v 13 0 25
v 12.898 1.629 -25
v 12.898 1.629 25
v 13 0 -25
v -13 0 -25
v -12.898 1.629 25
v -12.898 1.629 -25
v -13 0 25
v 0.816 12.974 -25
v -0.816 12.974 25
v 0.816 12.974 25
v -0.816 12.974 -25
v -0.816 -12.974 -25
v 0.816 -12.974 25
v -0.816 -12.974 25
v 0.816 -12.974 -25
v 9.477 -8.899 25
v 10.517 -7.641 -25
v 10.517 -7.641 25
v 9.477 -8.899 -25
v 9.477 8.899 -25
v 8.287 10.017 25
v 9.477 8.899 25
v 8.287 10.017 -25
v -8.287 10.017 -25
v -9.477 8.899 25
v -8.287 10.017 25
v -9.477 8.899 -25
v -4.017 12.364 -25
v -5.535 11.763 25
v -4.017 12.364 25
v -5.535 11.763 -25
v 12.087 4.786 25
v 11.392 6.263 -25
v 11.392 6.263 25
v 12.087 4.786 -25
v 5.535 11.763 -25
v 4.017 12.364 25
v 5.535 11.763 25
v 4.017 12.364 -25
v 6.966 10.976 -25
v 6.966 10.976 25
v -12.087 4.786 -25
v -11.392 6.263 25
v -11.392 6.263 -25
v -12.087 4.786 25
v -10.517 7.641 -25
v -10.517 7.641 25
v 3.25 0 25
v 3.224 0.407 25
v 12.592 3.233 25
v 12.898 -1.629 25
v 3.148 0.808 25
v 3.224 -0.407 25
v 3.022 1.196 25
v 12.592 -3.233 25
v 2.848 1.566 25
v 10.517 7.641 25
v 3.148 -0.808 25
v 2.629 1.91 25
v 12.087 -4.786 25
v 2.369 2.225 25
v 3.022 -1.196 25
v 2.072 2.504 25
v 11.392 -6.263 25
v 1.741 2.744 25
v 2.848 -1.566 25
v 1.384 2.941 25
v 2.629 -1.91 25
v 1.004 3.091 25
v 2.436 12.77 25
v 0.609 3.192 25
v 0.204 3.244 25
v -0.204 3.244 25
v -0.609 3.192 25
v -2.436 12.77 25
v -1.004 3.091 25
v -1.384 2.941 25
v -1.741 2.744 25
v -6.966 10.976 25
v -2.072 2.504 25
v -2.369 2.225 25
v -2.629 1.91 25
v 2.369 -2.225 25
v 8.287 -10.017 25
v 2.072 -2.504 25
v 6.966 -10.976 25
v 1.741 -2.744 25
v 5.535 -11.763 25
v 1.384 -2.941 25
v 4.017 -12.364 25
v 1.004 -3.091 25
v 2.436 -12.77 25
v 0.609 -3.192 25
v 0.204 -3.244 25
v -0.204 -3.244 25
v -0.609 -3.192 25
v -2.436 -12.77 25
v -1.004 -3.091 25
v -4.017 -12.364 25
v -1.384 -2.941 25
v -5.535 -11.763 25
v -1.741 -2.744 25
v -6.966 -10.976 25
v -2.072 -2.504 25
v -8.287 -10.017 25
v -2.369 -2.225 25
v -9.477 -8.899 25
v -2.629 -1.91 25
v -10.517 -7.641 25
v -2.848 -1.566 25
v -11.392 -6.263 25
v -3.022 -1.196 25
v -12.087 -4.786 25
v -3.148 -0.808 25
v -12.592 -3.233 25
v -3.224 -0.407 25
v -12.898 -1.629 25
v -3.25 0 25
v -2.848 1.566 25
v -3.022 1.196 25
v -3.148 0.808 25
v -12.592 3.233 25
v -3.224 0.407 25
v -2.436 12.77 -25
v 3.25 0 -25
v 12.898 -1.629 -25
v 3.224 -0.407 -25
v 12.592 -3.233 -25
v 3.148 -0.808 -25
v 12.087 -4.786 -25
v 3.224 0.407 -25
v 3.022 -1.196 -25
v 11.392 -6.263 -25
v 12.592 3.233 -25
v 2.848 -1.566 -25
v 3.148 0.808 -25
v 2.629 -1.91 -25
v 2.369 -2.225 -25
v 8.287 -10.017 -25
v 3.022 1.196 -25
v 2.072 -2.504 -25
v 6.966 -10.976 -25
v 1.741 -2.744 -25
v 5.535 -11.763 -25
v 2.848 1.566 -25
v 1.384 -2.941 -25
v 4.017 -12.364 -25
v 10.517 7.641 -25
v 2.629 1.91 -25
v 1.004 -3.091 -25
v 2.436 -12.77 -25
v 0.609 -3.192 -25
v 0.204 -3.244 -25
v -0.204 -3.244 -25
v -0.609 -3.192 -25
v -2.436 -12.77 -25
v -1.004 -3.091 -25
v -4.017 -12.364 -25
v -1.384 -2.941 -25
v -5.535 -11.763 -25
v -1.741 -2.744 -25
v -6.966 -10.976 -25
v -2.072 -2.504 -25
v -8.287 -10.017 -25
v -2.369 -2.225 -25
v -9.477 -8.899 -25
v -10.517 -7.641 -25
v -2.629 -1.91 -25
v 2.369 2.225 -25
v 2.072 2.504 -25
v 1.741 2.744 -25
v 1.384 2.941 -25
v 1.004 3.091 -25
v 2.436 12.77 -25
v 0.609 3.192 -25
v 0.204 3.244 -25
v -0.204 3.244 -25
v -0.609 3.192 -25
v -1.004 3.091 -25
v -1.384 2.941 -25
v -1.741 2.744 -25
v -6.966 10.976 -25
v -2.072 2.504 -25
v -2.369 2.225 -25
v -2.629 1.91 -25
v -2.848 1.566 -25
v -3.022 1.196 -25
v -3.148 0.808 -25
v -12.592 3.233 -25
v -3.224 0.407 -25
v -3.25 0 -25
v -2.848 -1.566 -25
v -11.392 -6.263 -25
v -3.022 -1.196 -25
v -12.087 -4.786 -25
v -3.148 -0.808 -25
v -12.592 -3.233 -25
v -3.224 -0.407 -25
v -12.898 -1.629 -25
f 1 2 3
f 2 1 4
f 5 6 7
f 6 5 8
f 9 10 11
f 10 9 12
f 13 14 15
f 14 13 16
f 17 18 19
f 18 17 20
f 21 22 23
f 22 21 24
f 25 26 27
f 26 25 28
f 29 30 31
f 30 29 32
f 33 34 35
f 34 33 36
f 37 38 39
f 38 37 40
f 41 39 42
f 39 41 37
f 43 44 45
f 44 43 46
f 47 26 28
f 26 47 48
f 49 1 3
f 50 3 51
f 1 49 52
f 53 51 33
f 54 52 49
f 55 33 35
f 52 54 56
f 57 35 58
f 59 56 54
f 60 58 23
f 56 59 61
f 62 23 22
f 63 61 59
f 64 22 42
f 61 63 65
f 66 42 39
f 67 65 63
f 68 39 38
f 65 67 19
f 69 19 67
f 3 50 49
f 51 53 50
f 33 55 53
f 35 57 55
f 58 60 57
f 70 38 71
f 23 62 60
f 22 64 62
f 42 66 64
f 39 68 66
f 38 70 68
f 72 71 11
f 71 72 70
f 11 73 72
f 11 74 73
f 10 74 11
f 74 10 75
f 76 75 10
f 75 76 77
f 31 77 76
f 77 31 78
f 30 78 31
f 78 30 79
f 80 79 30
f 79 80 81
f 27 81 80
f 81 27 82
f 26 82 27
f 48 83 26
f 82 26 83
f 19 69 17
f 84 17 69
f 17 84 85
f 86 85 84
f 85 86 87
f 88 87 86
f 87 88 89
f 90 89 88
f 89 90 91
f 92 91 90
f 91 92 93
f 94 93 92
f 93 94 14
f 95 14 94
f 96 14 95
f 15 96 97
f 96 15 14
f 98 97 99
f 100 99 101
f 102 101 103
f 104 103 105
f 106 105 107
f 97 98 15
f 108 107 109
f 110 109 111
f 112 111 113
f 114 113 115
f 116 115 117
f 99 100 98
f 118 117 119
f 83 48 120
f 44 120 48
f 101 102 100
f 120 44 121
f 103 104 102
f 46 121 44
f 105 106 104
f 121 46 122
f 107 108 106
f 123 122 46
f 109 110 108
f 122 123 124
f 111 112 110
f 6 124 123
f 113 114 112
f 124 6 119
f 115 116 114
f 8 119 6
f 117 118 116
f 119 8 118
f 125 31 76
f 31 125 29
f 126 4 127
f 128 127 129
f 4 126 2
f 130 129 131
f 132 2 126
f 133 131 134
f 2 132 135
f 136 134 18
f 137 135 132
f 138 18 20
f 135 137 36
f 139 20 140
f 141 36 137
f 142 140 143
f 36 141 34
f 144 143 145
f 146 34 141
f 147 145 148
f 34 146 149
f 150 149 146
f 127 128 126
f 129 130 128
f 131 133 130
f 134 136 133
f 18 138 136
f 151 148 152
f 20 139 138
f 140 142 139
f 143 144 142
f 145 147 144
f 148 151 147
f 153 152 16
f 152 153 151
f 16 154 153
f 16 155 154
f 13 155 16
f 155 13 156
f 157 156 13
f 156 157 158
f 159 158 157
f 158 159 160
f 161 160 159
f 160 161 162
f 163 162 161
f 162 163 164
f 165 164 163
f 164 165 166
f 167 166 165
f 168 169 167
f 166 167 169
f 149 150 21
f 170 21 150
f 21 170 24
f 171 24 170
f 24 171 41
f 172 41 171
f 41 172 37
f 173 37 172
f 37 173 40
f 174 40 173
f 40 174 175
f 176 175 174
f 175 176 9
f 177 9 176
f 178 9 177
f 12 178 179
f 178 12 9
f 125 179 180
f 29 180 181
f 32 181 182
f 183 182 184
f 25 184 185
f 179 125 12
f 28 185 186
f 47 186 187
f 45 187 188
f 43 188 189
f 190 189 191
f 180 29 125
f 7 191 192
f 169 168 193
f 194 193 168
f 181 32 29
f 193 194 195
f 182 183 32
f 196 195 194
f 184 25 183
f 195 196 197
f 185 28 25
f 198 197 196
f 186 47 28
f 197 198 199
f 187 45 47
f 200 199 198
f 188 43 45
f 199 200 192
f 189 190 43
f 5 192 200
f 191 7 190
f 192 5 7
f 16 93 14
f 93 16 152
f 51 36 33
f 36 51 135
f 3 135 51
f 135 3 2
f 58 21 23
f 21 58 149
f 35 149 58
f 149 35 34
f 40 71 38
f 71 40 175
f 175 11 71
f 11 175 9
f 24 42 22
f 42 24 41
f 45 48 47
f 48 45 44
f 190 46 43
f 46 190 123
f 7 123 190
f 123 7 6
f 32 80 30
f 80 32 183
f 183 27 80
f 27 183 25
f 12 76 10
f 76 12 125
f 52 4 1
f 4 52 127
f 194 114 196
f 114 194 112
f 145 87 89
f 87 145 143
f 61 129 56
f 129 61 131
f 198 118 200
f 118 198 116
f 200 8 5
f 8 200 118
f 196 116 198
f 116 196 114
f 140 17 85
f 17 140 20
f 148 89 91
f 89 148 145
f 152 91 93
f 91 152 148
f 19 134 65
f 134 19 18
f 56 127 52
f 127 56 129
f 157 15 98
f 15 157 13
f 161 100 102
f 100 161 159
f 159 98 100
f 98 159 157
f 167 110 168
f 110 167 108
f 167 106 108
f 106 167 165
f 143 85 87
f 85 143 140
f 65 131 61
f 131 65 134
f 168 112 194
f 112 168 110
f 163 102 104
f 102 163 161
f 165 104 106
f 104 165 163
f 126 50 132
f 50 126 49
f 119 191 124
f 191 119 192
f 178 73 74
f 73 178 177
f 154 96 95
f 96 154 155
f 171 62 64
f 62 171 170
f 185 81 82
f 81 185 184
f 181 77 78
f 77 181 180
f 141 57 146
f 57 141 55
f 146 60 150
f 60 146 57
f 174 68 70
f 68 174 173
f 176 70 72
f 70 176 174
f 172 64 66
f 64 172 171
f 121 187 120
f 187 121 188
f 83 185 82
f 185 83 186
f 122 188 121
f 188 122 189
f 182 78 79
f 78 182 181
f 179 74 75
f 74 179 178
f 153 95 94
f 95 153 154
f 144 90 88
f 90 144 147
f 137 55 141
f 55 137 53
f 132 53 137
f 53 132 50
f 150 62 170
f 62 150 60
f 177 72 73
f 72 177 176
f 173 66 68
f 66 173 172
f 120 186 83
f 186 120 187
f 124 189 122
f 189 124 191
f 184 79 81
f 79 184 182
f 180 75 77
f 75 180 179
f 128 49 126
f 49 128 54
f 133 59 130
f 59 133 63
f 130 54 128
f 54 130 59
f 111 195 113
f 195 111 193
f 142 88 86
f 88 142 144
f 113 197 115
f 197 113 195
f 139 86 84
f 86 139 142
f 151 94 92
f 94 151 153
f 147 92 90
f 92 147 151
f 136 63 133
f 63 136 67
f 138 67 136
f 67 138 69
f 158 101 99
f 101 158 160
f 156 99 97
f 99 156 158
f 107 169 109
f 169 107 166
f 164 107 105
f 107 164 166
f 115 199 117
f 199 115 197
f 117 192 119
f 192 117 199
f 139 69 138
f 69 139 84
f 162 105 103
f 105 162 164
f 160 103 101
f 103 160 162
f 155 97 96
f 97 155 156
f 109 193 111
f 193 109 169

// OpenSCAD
$fn = 50;


difference() {
	union() {
		translate(v = [0, 0, -25.0000000000]) {
			cylinder(h = 50, r = 13.0000000000);
		}
	}
	union() {
		translate(v = [0, 0, -100.0000000000]) {
			cylinder(h = 200, r = 3.2500000000);
		}
	}
}
